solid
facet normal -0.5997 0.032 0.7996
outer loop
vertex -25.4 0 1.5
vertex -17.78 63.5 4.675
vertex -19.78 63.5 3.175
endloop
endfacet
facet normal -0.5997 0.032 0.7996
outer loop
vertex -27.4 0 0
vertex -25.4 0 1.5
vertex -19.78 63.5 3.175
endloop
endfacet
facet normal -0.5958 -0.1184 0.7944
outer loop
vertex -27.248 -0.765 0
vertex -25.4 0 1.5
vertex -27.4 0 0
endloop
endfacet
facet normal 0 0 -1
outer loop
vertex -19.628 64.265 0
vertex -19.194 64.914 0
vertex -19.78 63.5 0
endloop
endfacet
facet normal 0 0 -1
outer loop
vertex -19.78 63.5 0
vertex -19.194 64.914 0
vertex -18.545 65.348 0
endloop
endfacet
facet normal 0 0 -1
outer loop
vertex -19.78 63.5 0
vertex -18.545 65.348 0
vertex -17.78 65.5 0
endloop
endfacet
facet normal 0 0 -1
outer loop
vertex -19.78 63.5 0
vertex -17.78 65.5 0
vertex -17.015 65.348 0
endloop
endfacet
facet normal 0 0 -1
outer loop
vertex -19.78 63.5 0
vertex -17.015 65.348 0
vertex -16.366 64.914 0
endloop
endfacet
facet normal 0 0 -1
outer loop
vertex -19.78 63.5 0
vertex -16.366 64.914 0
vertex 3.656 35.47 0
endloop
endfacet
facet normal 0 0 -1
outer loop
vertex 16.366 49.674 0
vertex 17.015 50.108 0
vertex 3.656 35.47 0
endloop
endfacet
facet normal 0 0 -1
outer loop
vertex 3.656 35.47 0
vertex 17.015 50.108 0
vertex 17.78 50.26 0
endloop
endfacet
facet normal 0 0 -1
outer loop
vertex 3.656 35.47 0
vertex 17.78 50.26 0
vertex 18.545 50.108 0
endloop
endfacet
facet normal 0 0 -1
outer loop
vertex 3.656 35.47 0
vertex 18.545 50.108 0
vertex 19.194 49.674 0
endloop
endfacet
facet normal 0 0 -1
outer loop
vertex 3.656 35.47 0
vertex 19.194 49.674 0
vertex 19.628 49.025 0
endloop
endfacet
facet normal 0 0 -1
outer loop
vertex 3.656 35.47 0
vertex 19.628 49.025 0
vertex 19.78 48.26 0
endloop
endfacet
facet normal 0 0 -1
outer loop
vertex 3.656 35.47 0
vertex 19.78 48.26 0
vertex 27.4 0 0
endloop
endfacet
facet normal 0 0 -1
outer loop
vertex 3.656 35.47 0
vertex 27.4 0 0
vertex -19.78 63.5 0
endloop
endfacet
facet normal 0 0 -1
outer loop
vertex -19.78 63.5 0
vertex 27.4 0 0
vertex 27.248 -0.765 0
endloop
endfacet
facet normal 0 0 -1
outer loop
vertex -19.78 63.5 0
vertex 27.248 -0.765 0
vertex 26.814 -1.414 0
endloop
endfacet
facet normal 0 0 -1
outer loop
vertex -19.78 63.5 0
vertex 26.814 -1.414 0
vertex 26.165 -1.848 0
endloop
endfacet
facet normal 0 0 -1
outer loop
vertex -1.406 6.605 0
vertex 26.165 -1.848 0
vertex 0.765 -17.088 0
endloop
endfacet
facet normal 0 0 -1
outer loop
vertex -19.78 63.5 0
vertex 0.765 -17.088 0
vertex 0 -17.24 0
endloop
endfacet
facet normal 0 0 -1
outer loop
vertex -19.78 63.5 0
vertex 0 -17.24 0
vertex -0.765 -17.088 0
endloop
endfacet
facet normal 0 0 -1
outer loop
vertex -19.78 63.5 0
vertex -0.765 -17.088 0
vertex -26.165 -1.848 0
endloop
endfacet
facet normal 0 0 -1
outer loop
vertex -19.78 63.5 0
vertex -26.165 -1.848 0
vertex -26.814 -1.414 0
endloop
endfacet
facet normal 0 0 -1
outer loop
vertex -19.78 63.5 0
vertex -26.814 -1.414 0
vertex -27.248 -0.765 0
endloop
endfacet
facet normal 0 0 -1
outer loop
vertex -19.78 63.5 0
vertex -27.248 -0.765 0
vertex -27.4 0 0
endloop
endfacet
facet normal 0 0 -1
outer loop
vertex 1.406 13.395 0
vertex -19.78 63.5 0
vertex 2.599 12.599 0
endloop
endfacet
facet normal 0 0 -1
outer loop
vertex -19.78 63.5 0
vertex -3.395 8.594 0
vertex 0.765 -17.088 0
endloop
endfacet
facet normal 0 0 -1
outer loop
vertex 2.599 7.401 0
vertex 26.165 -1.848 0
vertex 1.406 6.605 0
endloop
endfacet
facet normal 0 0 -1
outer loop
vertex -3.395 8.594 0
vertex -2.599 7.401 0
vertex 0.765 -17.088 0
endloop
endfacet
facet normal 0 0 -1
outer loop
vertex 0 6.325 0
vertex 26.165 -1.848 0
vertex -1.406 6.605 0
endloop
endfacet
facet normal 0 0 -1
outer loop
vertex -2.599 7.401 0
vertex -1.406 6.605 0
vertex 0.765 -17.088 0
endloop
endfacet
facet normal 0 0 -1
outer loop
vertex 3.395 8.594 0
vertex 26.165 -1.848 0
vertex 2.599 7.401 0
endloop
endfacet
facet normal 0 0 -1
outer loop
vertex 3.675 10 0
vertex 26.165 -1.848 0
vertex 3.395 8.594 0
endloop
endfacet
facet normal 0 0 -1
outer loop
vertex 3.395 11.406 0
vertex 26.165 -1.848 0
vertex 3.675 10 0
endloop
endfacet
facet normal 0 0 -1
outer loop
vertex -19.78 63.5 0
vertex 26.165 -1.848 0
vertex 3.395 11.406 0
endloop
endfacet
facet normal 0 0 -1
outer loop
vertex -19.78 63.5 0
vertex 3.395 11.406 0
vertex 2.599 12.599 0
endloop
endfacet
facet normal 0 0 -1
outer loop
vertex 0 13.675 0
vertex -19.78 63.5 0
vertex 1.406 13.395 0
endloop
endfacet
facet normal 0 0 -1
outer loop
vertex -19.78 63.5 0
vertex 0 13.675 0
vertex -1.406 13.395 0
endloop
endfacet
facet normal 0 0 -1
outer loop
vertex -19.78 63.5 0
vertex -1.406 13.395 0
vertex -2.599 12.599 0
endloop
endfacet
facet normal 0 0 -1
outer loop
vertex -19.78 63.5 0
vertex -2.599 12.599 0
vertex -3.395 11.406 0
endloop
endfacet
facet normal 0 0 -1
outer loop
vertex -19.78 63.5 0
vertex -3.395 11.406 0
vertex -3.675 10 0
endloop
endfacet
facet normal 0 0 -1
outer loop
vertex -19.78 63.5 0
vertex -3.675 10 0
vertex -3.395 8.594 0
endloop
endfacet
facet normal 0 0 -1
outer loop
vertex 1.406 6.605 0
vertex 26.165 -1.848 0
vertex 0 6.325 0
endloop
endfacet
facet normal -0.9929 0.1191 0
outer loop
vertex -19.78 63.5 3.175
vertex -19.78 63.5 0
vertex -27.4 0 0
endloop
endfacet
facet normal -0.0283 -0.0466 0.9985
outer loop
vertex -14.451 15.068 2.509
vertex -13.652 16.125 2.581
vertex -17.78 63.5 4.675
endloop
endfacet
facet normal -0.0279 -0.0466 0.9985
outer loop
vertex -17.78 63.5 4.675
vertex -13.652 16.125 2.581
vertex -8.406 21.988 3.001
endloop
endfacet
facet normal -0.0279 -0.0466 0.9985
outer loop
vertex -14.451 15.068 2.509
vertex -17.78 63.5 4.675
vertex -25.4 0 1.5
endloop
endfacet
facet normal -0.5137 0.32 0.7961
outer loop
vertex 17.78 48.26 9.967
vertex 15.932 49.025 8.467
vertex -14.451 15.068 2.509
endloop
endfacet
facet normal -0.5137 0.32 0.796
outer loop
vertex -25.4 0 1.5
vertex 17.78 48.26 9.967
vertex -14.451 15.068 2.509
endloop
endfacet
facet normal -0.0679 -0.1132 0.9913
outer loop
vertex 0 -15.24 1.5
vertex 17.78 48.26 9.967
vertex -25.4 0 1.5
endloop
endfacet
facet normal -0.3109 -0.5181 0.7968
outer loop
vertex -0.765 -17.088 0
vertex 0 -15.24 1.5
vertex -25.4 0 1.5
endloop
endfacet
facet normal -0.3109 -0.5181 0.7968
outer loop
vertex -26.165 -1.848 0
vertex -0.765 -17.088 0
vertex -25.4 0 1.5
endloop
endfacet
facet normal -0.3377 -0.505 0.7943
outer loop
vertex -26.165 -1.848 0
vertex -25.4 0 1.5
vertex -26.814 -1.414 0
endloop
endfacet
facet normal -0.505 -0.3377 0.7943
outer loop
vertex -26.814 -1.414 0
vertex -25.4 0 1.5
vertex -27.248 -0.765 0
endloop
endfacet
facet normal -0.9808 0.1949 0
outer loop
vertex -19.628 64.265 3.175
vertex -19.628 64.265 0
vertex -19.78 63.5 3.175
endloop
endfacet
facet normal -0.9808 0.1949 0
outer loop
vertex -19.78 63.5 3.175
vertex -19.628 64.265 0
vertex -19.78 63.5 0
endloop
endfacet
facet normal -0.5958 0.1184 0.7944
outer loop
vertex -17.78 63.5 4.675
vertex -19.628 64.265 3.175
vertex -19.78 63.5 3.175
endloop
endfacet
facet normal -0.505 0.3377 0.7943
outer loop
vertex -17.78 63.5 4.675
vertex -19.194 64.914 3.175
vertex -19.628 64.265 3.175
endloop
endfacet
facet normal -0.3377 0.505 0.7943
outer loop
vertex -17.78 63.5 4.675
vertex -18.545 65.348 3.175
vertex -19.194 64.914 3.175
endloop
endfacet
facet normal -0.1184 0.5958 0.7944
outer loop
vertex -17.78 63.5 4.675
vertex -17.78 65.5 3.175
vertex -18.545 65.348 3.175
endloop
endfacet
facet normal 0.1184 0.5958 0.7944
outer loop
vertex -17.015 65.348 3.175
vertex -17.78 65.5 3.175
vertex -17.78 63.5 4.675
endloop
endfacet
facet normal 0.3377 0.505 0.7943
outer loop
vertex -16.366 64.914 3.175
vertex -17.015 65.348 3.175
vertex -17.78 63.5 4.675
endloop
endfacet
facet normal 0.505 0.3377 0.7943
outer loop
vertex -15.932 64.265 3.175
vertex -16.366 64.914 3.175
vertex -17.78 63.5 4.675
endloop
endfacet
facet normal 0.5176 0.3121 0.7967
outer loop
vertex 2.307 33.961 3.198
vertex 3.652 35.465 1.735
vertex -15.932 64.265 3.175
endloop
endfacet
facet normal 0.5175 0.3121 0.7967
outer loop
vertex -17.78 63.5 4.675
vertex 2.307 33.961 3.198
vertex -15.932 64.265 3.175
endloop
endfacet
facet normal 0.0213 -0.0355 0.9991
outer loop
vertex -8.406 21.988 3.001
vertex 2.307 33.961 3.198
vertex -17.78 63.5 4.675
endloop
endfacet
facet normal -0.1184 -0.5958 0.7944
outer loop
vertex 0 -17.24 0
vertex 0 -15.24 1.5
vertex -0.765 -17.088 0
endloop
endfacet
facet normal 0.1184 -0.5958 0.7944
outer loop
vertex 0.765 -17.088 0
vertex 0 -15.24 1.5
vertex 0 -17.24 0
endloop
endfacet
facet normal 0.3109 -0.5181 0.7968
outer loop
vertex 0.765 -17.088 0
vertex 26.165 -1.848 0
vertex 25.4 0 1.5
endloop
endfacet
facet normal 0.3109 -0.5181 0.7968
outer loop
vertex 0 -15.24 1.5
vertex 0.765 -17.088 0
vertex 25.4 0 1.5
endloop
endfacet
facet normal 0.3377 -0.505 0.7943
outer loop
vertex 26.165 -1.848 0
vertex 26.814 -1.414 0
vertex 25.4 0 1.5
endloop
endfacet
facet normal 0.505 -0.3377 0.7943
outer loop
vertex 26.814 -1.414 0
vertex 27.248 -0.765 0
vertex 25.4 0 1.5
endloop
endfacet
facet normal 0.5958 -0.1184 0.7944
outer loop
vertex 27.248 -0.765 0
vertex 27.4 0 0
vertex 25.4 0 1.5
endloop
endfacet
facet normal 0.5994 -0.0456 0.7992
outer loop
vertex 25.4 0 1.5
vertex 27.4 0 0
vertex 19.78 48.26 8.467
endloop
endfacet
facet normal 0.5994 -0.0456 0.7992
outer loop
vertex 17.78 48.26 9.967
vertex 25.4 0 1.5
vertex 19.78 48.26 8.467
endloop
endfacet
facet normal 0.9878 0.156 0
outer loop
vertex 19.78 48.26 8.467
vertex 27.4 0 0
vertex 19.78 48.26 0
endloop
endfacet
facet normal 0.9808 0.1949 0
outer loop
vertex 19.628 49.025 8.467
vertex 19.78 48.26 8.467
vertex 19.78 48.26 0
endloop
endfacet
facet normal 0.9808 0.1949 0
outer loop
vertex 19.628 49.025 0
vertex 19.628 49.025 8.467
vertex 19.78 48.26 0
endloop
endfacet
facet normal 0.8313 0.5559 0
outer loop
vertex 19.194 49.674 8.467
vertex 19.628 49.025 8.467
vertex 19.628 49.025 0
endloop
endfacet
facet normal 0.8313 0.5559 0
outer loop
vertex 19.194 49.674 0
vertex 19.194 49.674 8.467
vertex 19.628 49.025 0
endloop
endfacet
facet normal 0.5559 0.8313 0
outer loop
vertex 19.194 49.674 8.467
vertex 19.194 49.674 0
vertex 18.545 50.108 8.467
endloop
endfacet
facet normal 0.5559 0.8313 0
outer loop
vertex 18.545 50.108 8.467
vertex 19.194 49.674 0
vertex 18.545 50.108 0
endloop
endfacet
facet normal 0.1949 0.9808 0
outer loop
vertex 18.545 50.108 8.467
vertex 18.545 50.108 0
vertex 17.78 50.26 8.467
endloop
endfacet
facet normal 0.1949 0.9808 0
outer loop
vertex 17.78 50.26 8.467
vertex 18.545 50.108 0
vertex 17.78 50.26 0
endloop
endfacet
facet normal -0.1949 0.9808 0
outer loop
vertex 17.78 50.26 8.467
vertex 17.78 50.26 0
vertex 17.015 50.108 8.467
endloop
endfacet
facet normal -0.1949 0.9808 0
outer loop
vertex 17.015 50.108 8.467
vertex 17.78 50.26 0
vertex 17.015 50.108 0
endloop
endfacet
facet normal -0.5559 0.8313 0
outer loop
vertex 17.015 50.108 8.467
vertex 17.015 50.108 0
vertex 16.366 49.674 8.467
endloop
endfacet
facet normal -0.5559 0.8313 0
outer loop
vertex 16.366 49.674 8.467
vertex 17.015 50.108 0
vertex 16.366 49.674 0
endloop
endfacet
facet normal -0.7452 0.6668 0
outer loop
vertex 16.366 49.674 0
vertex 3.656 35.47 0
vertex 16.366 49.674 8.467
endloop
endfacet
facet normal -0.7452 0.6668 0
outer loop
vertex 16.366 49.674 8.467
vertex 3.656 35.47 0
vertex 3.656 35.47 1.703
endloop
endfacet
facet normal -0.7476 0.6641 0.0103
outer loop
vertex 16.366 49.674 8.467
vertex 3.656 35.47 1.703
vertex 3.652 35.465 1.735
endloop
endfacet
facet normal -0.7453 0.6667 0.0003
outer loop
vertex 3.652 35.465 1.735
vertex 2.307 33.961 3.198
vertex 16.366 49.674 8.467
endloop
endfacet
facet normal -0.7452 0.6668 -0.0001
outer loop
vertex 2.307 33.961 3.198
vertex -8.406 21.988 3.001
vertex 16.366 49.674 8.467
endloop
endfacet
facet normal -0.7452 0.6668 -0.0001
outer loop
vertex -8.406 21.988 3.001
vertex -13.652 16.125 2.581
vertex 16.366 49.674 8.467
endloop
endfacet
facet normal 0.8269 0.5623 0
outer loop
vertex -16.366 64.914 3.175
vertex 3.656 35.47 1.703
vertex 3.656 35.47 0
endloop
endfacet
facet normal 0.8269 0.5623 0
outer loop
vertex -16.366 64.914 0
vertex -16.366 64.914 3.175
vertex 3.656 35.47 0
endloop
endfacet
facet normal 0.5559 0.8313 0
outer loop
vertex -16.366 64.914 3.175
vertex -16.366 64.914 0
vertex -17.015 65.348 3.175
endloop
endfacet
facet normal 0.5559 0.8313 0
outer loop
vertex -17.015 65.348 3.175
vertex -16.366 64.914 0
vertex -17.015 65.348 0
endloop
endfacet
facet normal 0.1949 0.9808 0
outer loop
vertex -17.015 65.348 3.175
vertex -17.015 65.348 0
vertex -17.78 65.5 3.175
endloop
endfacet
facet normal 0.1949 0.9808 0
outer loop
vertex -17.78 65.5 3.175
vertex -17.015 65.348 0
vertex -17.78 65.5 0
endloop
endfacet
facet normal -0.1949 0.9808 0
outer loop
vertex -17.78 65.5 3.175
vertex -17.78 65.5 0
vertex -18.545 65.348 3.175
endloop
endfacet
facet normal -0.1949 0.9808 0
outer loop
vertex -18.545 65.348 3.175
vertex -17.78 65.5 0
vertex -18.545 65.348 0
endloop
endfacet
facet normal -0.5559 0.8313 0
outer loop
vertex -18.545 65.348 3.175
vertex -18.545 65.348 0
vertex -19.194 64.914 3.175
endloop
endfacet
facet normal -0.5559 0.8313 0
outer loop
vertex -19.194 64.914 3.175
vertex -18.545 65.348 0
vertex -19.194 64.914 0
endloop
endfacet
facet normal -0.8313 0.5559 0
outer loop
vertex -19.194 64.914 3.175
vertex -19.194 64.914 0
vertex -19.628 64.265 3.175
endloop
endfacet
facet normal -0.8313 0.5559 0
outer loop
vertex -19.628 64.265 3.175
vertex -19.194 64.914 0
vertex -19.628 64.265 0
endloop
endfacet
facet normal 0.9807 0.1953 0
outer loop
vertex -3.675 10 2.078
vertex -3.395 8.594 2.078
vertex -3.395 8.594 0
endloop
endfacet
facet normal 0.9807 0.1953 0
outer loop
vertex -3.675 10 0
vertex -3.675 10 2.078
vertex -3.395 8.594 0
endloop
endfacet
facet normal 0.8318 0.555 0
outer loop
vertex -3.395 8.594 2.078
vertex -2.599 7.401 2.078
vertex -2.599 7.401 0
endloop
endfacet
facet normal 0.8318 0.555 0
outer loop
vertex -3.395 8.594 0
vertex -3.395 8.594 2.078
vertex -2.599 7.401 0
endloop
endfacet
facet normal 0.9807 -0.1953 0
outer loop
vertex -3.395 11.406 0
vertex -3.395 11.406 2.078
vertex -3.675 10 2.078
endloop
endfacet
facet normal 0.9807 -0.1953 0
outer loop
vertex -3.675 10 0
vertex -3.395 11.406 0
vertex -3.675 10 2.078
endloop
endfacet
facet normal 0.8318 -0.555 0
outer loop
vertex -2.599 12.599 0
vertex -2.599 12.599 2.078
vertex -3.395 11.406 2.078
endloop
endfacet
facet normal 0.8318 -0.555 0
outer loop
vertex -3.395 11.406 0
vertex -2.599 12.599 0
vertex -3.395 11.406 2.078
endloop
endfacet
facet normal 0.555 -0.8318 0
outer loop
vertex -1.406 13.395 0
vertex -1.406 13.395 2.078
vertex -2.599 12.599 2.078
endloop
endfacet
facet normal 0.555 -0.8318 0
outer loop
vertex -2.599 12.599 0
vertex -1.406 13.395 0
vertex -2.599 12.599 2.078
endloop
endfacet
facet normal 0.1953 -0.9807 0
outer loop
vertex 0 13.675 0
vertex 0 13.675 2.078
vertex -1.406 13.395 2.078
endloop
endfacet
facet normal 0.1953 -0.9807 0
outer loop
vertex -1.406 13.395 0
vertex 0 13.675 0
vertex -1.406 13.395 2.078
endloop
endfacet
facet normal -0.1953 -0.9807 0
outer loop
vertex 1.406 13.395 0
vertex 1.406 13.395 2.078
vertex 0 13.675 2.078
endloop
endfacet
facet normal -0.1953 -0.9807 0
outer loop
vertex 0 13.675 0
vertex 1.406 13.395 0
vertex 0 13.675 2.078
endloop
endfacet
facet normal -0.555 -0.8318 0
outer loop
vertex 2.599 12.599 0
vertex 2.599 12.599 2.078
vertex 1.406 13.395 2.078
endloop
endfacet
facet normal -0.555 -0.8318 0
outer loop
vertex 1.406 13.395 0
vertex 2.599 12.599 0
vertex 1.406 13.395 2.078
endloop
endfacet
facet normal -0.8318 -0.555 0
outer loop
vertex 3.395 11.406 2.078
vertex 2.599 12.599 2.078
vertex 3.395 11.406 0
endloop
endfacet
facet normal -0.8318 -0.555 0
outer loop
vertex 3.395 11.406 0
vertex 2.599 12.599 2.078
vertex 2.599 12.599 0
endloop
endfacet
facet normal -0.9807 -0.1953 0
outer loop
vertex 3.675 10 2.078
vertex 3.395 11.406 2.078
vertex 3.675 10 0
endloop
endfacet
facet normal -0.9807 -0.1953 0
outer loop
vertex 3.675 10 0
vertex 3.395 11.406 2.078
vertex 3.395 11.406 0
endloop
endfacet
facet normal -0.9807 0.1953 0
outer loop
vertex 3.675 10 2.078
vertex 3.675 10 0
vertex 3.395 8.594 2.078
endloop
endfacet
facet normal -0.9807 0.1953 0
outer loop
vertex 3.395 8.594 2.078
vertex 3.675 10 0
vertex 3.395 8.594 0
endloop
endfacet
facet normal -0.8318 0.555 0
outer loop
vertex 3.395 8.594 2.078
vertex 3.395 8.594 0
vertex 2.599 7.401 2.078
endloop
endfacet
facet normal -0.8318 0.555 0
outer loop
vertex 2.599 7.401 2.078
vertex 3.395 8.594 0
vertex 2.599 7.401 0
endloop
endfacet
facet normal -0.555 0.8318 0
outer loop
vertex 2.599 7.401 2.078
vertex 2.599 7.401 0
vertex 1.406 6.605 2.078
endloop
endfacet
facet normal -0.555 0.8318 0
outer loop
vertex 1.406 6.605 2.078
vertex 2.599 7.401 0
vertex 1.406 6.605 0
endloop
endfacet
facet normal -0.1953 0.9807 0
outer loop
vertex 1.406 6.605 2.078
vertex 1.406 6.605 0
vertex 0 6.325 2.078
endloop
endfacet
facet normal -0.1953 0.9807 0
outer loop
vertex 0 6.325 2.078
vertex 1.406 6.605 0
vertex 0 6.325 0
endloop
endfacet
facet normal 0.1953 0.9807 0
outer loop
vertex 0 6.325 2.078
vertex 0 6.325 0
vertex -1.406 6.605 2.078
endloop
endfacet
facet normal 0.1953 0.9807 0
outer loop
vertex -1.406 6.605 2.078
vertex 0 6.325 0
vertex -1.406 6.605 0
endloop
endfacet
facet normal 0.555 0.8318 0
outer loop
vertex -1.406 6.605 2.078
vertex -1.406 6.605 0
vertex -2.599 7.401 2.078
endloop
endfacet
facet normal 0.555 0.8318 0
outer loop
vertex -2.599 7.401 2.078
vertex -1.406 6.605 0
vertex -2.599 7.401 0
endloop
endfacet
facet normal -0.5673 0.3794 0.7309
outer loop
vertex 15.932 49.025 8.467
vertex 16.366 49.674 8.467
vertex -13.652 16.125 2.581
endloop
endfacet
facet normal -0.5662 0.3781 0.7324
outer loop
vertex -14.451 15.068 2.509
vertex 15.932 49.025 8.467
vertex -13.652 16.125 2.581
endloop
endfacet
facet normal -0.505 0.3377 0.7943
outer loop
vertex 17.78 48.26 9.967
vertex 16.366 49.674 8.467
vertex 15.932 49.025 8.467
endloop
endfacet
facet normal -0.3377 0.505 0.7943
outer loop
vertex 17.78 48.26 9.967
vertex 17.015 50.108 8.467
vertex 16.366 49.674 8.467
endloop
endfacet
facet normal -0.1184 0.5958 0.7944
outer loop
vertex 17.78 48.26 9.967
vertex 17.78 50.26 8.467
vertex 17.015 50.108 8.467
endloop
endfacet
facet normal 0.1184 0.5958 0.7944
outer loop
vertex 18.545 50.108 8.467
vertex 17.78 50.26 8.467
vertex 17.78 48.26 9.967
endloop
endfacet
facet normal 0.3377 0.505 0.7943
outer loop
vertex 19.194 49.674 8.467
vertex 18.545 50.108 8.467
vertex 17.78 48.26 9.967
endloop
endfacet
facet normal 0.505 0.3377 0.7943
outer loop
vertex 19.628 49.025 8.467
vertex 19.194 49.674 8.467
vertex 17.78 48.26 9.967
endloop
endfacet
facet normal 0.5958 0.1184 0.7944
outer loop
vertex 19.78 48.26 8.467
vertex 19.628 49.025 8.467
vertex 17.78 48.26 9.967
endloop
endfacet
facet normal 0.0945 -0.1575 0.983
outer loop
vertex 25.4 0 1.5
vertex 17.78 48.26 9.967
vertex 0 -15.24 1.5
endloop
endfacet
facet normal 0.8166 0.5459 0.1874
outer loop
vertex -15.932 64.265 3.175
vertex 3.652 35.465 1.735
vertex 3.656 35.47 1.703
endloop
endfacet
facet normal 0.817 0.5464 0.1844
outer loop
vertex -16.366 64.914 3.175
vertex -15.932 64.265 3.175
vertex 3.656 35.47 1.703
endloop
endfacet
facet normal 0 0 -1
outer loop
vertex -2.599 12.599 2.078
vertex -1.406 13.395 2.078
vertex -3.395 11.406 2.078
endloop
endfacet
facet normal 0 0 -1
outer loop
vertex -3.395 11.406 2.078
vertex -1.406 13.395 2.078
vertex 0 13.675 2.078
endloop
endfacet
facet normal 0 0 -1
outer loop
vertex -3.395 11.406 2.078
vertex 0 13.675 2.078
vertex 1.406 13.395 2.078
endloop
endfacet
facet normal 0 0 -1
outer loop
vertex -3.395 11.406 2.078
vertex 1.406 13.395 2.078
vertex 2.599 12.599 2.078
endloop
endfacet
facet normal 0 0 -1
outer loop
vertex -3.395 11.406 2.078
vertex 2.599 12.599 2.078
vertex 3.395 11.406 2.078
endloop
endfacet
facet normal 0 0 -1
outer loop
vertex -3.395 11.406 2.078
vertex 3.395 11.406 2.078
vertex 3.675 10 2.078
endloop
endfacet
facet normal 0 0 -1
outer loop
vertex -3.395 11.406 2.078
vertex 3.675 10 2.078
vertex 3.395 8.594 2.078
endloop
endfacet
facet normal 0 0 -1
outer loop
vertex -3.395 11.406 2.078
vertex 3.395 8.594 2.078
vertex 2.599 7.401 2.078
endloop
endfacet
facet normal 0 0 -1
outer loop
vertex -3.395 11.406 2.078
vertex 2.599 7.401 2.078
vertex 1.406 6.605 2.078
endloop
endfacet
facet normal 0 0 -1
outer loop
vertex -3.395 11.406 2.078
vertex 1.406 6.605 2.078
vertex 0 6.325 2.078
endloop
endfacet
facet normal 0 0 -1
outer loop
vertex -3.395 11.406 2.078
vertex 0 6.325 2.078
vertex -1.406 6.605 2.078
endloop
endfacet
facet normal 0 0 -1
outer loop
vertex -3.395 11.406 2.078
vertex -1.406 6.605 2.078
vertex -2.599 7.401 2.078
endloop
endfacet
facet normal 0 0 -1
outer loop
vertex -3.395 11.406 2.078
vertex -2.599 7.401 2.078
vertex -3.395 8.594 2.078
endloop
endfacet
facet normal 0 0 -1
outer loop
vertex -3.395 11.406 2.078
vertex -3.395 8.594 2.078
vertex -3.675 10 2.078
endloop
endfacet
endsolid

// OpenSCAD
// Flame badge
// Copyright (c) 2106

$fs = 0.5;
E = 0.01;

INCH = 25.4;
GAP = 0.5;

// Flame control points
X_MAX = 1 * INCH;
X_MIN = -X_MAX;

Y_MIN = -0.6 * INCH;

FLARE_IN = 0.3 * INCH;

X_MAJOR = X_MIN + FLARE_IN;
Y_MAJOR = 2.5 * INCH;
Z_MAJOR = INCH / 8;

X_MINOR = X_MAX - FLARE_IN;
Y_MINOR = 1.9 * INCH;
Z_MINOR = INCH / 3;

// Magnetic clasp dimenisions
BACK_R = INCH / 8 + GAP;
BACK_H = INCH / 16 + GAP;
echo("Back diameter", BACK_R * 2);

difference() {
  flame();
  # translate([0, 10, BACK_H / 2 - E])
    cylinder(r=BACK_R, h=BACK_H, center=true, $fn=16);
}

module flame() {
  union() {
    round_it()
      major_flame();
    round_it()
      minor_flame();
  }
}

// Clockwise 5 basic control points
//     1-5  2-6
//    /\  /\
//   |  \/ |
// 0 -_   _-3
//     -_-
//      4
P0 = [X_MIN, 0, 0];
P1_BASE = [X_MAJOR, Y_MAJOR, 0];
P1_PEAK = [X_MAJOR, Y_MAJOR, Z_MAJOR];
P2_BASE = [X_MINOR, Y_MINOR, 0];
P2_PEAK = [X_MINOR, Y_MINOR, Z_MINOR];
P3 = [X_MAX, 0, 0];
P4 = [0, Y_MIN, 0];

module major_flame() {
  polyhedron(
    points = [P0, P1_BASE, P2_BASE, P3, P4,
              P1_PEAK, P2_PEAK],
    faces = [
      [0, 4, 3], [0, 3, 1],  // Bottom
      [0, 1, 5], [3, 5, 1],  // Sides
      [0, 5, 4], [4, 5, 3]   // Top
    ]
  );
}

module minor_flame() {
  polyhedron(
    points = [P0, P1_BASE, P2_BASE, P3, P4,
              P1_PEAK, P2_PEAK],
    faces = [
      [0, 4, 3], [0, 3, 2],  // Bottom
      [0, 2, 6], [3, 6, 2],  // Sides
      [0, 6, 4], [4, 6, 3]   // Top
    ]
  );
}

module round_it() {
  minkowski() {
    cylinder(r1=2, r2=0, h=1.5, $fn=16);
    children();
  }
}
